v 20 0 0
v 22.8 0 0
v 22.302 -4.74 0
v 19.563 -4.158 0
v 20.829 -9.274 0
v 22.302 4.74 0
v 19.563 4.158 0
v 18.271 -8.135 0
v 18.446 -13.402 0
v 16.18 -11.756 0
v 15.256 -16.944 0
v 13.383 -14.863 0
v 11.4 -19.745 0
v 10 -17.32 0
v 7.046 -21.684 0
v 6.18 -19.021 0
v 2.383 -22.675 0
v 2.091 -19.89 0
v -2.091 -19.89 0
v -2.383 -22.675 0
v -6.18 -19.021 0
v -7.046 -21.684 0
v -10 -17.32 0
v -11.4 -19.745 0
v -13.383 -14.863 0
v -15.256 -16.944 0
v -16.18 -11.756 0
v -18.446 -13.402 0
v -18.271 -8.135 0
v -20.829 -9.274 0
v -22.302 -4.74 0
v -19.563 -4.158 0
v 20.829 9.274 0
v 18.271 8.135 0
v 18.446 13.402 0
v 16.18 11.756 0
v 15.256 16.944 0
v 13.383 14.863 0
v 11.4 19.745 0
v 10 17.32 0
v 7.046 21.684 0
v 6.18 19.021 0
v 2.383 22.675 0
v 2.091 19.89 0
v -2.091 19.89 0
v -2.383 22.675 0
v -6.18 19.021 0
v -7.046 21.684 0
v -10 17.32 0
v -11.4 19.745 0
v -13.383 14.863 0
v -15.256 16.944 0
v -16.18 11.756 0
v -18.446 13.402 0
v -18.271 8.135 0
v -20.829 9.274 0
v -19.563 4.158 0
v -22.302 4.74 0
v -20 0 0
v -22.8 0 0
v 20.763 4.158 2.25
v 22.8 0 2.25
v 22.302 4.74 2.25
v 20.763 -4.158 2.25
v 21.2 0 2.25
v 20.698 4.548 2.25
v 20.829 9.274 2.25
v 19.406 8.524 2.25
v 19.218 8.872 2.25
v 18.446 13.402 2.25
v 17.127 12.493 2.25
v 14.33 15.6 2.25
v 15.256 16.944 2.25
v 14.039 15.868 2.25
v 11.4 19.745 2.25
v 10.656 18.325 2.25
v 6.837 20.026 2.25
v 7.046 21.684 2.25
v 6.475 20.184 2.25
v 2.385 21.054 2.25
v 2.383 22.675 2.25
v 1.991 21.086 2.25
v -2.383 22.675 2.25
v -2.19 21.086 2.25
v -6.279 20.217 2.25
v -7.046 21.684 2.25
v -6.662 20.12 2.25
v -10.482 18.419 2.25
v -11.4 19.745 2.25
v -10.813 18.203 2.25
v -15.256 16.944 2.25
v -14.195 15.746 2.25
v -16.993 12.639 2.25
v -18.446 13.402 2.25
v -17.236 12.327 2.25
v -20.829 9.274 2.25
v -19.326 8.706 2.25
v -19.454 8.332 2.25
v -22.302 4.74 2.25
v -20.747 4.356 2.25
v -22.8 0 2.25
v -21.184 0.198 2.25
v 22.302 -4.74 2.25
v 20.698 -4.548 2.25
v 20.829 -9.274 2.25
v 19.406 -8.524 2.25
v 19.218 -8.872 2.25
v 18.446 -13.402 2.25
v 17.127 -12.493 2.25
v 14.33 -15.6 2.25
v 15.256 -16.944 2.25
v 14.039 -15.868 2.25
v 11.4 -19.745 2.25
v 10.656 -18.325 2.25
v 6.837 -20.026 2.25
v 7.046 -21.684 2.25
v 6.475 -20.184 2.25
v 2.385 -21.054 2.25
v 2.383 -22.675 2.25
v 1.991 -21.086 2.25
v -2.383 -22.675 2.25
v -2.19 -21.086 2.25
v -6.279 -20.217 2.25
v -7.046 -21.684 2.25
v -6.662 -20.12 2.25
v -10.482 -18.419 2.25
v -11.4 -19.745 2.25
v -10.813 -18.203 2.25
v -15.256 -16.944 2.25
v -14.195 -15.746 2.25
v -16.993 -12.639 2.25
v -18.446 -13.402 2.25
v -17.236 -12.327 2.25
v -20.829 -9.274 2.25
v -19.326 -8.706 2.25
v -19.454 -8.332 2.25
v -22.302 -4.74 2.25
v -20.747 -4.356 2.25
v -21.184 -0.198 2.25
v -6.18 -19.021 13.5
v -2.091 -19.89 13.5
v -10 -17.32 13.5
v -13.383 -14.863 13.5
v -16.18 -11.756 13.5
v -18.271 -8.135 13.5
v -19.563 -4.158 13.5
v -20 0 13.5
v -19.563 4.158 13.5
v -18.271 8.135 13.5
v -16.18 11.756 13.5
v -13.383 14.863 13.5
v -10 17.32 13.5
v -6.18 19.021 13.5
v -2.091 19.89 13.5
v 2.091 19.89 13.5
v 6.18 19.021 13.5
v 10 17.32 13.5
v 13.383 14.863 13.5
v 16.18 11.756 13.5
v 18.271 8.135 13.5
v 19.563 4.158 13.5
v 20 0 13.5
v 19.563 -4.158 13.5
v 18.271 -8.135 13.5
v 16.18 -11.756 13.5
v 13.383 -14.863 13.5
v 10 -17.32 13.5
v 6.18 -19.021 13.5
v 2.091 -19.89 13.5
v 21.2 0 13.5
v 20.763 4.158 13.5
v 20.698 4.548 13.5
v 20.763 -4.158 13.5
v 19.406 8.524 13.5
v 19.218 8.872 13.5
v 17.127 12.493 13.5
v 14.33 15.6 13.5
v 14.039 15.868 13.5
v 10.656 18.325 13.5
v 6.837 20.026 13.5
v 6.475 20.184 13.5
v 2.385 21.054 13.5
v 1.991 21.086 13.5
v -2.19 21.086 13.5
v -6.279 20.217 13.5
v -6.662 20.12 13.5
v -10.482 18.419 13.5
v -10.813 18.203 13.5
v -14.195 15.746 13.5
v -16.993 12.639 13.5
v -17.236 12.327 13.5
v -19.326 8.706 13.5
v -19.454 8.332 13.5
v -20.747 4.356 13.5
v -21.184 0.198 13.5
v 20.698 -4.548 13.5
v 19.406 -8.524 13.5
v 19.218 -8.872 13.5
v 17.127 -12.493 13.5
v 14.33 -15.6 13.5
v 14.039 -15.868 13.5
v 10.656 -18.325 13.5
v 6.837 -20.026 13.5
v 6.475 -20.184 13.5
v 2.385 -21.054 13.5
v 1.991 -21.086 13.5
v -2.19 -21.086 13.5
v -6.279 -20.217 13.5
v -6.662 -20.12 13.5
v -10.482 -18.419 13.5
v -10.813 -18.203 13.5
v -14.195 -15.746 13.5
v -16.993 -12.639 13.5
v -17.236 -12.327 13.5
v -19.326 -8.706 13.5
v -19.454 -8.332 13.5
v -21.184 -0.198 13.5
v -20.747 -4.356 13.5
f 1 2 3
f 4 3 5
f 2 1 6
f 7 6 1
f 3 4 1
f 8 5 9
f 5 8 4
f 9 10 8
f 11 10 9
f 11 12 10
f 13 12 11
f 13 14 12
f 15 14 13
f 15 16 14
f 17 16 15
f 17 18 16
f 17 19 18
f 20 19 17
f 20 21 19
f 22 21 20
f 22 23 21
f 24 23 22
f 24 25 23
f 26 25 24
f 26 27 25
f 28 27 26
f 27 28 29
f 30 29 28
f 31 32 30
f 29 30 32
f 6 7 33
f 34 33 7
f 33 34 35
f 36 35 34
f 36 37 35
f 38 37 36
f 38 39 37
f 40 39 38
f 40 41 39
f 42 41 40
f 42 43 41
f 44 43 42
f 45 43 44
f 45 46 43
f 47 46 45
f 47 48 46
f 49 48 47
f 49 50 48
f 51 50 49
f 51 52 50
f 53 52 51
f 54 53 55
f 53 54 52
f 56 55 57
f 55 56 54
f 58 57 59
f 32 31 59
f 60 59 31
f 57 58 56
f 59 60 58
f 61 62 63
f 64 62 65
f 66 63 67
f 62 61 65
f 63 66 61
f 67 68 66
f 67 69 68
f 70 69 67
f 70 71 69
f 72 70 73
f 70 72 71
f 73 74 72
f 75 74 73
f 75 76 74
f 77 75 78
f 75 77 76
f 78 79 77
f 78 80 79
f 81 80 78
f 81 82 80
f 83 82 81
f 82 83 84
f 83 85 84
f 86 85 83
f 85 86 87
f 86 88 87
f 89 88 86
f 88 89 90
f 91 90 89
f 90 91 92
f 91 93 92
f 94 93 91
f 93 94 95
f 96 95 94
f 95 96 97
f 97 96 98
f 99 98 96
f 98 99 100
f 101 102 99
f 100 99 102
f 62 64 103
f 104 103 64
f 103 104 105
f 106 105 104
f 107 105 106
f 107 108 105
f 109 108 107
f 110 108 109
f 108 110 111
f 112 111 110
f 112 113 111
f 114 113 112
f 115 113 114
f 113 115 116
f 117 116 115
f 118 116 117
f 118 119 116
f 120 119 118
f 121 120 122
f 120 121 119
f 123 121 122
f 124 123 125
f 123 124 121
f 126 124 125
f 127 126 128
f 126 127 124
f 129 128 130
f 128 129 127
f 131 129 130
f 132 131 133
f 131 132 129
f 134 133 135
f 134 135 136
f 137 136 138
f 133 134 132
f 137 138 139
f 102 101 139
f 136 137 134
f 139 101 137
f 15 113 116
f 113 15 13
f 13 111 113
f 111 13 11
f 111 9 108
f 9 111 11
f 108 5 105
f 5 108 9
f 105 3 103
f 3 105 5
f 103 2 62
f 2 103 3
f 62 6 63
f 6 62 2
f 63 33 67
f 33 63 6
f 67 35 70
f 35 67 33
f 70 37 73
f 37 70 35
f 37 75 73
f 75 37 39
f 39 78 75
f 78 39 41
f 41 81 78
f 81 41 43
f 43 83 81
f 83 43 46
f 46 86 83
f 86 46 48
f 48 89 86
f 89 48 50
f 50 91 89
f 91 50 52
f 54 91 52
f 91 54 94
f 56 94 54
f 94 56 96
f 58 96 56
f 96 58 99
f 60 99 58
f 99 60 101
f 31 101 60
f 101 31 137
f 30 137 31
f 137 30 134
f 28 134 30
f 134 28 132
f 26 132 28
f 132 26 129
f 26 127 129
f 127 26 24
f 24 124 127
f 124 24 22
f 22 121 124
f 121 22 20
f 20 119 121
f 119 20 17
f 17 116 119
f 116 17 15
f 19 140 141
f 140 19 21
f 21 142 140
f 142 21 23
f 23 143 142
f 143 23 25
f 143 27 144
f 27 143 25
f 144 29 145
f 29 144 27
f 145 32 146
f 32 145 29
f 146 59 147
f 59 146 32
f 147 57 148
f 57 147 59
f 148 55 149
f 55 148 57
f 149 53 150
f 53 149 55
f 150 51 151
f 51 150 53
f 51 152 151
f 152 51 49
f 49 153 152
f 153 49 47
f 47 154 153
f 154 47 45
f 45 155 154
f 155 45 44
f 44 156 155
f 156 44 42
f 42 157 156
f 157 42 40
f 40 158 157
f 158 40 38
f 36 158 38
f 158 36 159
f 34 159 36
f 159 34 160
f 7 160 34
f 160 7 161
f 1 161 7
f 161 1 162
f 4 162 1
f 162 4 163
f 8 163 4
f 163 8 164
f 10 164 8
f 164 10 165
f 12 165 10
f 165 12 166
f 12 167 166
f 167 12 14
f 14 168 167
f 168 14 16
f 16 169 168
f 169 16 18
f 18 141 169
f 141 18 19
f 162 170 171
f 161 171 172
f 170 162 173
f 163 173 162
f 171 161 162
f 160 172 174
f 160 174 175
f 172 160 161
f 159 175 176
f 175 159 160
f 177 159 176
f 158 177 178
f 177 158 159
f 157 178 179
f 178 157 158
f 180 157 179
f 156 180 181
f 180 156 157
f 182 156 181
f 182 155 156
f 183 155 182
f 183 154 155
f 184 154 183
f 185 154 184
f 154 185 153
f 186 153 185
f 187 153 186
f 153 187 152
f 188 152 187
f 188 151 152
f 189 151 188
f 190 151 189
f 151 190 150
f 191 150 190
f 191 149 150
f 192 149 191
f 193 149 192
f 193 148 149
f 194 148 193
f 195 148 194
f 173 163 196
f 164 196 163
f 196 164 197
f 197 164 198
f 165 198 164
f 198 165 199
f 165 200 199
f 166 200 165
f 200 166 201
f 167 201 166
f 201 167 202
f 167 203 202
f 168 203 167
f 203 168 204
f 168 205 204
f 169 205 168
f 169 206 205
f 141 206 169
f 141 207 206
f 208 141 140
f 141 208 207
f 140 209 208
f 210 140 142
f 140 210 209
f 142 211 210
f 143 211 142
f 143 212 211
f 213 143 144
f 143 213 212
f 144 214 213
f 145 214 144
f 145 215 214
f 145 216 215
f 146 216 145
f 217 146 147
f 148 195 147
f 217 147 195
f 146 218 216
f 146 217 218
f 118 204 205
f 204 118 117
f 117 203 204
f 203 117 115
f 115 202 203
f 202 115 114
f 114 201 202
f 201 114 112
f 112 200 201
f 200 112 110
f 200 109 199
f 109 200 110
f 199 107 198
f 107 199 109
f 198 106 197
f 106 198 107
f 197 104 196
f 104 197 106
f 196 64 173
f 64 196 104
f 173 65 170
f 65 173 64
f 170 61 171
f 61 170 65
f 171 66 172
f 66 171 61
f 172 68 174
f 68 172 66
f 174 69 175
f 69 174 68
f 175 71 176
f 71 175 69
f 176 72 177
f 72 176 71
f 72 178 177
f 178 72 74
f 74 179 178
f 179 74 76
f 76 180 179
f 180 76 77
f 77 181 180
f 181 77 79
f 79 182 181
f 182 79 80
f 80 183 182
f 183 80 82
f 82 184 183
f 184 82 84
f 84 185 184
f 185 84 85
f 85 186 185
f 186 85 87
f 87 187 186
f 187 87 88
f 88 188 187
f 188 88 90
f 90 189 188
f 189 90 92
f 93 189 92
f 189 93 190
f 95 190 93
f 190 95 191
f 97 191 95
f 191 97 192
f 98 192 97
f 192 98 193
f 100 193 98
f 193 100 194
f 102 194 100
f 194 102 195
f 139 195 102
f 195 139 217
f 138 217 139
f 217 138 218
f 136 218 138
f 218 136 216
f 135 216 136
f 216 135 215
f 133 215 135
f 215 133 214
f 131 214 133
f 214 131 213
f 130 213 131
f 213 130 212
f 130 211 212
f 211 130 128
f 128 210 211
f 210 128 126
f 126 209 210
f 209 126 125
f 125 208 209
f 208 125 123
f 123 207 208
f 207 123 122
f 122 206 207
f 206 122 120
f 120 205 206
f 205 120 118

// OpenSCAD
// file: Common.scad
module offset_shell(thickness = 0.1) {
  render() {
      difference() {
          minkowski() {
            children();
            circle(2* thickness, center=true);
          }
        children();
      }
   }
}

module cookie_cutter(handle_thickness=8, cutter_tickness=3, total_height=15) {
    union() {
        linear_extrude(height = total_height*(0.15), slices = 60) {
            scale([.2,.2,1]) {
              offset_shell(handle_thickness) {
                children();

              }
            }
        };
        linear_extrude(height = total_height*(0.9), slices = 60)
            translate([0,0,2])
            scale([.2,.2,1]) {
              offset_shell(cutter_tickness) {
                children();
            }
        };
    }
}

module rod_with_clipped_circle(square_d, circle_d, circle_placement) {
    difference() {
        square(square_d, center=true);
        translate(circle_placement) circle(circle_d, center=true);
    }
}

//module cookie_press(handle_thickness=2.5, cutter_tickness=1, total_height=10) {
//    union() {
//        cookie_cutter(handle_thickness, cutter_tickness, total_height);
//        translate([0,0,10]) children();
//    }
//}
//
//
// file: ../ComplexShapes.scad
include <BasicShapes.scad>

module HalfCylinder(r, h, e=1, center=false) {
    translate([0,0, center ? -h/2 : 0])difference(){
        cylinder(h,r,r);
        translate([0,-r,-e])cube([2*r,2*r,h+2*e]);
    }
}

module HalfCircle(r) {
    difference(){
        circle(r);
        translate([-r,-2*r,0]) square(2*r);
    }
}

// http://benjamin-engel.blogspot.com/2015/07/openscad-tips-and-tricks.html

module equilateral_triangle(h) {
    rotate([0,0,-30]) circle(r=h, $fn=3);
}

module Crescent(r, fatten_scale=1, curve_angle=0, rotate=0) {
    r_prime = r / fatten_scale;
    rotate([0,0,rotate]) difference() {
        circle(r_prime*1.1);
        translate([r_prime/4, curve_angle*r_prime/4, 0]) circle(r_prime*fatten_scale);
    }
}


module round_edges(r) {
    minkowski() {
        children();
        circle(r);
    };
}

module CrescentV2(outer_r, inner_r, r_shift, edge_rounding=2) {
    // Different way to construct ... rounded edges ...
   round_edges(edge_rounding) {
        difference() {
            circle(outer_r);
            translate(r_shift) circle(inner_r);
        };
    };
}


//module Arch(x,y,r) {
//    // http://kitwallace.co.uk/Blog/item/2013-01-28T17:59:00Z
//    union() {
//        intersection() {
//           translate([x,y,0]) circle(r);
//           translate([-x,y,0]) circle(r);
//        }
//        translate([0,y/2,0]) square(size=[2 * (r-x), y], center=true);
//    }
//}

module Arch(width, arc_height, strech_height=0) {
    // http://kitwallace.co.uk/Blog/item/2013-01-28T17:59:00Z
    r = arc_height;
    x = (width / 2) - r;
    y = arc_height + strech_height;
    union() {
        intersection() {
           translate([x,y,0]) circle(r);
           translate([-x,y,0]) circle(r);
        }
        translate([0,y/2,0]) square(size=[width, y], center=true);
    }
}
// file: ../BasicShapes.scad
module Star(points, outer, inner_defaulted=0) {
    inner = inner_defaulted == 0 ? 2 * outer  : inner_defaulted;
	// polar to cartesian: radius/angle to x/y
	function x(r, a) = r * cos(a);
	function y(r, a) = r * sin(a);
	
	// angular width of each pie slice of the star
	increment = 360/points;
	
	union() {
		for (p = [0 : points-1]) {
			
			// outer is outer point p
			// inner is inner point following p
			// next is next outer point following p

			assign(	
                x_outer = x(outer, increment * p),
                y_outer = y(outer, increment * p),
                x_inner = x(inner, (increment * p) + (increment/2)),
                y_inner = y(inner, (increment * p) + (increment/2)),
                x_next  = x(outer, increment * (p+1)),
                y_next  = y(outer, increment * (p+1))
            ) {
				polygon(
                    points = [
                        [x_outer, y_outer], 
                        [x_inner, y_inner],
                        [x_next, y_next], 
                        [0, 0]
                    ], 
                    paths  = [[0, 1, 2, 3]]
                );
			}
		}
	}
}

//https://github.com/openscad/MCAD/blob/master/shapes.scad
module Hexagon(size) {
  Star(3, size, size);
}

module Octagon(size) {
  Star(4, size, size);
}

module Decagon(size) {
  Star(5, size, size);
}

module Decagon(size) {
  Star(5, size, size);
}

module Dodecagon(size) {
  Star(6, size, size);
}
// main file
include <../BasicShapes.scad>
include <../ComplexShapes.scad>
include <Common.scad>


cookie_cutter(7,3,15) {
    circle(100);
}
